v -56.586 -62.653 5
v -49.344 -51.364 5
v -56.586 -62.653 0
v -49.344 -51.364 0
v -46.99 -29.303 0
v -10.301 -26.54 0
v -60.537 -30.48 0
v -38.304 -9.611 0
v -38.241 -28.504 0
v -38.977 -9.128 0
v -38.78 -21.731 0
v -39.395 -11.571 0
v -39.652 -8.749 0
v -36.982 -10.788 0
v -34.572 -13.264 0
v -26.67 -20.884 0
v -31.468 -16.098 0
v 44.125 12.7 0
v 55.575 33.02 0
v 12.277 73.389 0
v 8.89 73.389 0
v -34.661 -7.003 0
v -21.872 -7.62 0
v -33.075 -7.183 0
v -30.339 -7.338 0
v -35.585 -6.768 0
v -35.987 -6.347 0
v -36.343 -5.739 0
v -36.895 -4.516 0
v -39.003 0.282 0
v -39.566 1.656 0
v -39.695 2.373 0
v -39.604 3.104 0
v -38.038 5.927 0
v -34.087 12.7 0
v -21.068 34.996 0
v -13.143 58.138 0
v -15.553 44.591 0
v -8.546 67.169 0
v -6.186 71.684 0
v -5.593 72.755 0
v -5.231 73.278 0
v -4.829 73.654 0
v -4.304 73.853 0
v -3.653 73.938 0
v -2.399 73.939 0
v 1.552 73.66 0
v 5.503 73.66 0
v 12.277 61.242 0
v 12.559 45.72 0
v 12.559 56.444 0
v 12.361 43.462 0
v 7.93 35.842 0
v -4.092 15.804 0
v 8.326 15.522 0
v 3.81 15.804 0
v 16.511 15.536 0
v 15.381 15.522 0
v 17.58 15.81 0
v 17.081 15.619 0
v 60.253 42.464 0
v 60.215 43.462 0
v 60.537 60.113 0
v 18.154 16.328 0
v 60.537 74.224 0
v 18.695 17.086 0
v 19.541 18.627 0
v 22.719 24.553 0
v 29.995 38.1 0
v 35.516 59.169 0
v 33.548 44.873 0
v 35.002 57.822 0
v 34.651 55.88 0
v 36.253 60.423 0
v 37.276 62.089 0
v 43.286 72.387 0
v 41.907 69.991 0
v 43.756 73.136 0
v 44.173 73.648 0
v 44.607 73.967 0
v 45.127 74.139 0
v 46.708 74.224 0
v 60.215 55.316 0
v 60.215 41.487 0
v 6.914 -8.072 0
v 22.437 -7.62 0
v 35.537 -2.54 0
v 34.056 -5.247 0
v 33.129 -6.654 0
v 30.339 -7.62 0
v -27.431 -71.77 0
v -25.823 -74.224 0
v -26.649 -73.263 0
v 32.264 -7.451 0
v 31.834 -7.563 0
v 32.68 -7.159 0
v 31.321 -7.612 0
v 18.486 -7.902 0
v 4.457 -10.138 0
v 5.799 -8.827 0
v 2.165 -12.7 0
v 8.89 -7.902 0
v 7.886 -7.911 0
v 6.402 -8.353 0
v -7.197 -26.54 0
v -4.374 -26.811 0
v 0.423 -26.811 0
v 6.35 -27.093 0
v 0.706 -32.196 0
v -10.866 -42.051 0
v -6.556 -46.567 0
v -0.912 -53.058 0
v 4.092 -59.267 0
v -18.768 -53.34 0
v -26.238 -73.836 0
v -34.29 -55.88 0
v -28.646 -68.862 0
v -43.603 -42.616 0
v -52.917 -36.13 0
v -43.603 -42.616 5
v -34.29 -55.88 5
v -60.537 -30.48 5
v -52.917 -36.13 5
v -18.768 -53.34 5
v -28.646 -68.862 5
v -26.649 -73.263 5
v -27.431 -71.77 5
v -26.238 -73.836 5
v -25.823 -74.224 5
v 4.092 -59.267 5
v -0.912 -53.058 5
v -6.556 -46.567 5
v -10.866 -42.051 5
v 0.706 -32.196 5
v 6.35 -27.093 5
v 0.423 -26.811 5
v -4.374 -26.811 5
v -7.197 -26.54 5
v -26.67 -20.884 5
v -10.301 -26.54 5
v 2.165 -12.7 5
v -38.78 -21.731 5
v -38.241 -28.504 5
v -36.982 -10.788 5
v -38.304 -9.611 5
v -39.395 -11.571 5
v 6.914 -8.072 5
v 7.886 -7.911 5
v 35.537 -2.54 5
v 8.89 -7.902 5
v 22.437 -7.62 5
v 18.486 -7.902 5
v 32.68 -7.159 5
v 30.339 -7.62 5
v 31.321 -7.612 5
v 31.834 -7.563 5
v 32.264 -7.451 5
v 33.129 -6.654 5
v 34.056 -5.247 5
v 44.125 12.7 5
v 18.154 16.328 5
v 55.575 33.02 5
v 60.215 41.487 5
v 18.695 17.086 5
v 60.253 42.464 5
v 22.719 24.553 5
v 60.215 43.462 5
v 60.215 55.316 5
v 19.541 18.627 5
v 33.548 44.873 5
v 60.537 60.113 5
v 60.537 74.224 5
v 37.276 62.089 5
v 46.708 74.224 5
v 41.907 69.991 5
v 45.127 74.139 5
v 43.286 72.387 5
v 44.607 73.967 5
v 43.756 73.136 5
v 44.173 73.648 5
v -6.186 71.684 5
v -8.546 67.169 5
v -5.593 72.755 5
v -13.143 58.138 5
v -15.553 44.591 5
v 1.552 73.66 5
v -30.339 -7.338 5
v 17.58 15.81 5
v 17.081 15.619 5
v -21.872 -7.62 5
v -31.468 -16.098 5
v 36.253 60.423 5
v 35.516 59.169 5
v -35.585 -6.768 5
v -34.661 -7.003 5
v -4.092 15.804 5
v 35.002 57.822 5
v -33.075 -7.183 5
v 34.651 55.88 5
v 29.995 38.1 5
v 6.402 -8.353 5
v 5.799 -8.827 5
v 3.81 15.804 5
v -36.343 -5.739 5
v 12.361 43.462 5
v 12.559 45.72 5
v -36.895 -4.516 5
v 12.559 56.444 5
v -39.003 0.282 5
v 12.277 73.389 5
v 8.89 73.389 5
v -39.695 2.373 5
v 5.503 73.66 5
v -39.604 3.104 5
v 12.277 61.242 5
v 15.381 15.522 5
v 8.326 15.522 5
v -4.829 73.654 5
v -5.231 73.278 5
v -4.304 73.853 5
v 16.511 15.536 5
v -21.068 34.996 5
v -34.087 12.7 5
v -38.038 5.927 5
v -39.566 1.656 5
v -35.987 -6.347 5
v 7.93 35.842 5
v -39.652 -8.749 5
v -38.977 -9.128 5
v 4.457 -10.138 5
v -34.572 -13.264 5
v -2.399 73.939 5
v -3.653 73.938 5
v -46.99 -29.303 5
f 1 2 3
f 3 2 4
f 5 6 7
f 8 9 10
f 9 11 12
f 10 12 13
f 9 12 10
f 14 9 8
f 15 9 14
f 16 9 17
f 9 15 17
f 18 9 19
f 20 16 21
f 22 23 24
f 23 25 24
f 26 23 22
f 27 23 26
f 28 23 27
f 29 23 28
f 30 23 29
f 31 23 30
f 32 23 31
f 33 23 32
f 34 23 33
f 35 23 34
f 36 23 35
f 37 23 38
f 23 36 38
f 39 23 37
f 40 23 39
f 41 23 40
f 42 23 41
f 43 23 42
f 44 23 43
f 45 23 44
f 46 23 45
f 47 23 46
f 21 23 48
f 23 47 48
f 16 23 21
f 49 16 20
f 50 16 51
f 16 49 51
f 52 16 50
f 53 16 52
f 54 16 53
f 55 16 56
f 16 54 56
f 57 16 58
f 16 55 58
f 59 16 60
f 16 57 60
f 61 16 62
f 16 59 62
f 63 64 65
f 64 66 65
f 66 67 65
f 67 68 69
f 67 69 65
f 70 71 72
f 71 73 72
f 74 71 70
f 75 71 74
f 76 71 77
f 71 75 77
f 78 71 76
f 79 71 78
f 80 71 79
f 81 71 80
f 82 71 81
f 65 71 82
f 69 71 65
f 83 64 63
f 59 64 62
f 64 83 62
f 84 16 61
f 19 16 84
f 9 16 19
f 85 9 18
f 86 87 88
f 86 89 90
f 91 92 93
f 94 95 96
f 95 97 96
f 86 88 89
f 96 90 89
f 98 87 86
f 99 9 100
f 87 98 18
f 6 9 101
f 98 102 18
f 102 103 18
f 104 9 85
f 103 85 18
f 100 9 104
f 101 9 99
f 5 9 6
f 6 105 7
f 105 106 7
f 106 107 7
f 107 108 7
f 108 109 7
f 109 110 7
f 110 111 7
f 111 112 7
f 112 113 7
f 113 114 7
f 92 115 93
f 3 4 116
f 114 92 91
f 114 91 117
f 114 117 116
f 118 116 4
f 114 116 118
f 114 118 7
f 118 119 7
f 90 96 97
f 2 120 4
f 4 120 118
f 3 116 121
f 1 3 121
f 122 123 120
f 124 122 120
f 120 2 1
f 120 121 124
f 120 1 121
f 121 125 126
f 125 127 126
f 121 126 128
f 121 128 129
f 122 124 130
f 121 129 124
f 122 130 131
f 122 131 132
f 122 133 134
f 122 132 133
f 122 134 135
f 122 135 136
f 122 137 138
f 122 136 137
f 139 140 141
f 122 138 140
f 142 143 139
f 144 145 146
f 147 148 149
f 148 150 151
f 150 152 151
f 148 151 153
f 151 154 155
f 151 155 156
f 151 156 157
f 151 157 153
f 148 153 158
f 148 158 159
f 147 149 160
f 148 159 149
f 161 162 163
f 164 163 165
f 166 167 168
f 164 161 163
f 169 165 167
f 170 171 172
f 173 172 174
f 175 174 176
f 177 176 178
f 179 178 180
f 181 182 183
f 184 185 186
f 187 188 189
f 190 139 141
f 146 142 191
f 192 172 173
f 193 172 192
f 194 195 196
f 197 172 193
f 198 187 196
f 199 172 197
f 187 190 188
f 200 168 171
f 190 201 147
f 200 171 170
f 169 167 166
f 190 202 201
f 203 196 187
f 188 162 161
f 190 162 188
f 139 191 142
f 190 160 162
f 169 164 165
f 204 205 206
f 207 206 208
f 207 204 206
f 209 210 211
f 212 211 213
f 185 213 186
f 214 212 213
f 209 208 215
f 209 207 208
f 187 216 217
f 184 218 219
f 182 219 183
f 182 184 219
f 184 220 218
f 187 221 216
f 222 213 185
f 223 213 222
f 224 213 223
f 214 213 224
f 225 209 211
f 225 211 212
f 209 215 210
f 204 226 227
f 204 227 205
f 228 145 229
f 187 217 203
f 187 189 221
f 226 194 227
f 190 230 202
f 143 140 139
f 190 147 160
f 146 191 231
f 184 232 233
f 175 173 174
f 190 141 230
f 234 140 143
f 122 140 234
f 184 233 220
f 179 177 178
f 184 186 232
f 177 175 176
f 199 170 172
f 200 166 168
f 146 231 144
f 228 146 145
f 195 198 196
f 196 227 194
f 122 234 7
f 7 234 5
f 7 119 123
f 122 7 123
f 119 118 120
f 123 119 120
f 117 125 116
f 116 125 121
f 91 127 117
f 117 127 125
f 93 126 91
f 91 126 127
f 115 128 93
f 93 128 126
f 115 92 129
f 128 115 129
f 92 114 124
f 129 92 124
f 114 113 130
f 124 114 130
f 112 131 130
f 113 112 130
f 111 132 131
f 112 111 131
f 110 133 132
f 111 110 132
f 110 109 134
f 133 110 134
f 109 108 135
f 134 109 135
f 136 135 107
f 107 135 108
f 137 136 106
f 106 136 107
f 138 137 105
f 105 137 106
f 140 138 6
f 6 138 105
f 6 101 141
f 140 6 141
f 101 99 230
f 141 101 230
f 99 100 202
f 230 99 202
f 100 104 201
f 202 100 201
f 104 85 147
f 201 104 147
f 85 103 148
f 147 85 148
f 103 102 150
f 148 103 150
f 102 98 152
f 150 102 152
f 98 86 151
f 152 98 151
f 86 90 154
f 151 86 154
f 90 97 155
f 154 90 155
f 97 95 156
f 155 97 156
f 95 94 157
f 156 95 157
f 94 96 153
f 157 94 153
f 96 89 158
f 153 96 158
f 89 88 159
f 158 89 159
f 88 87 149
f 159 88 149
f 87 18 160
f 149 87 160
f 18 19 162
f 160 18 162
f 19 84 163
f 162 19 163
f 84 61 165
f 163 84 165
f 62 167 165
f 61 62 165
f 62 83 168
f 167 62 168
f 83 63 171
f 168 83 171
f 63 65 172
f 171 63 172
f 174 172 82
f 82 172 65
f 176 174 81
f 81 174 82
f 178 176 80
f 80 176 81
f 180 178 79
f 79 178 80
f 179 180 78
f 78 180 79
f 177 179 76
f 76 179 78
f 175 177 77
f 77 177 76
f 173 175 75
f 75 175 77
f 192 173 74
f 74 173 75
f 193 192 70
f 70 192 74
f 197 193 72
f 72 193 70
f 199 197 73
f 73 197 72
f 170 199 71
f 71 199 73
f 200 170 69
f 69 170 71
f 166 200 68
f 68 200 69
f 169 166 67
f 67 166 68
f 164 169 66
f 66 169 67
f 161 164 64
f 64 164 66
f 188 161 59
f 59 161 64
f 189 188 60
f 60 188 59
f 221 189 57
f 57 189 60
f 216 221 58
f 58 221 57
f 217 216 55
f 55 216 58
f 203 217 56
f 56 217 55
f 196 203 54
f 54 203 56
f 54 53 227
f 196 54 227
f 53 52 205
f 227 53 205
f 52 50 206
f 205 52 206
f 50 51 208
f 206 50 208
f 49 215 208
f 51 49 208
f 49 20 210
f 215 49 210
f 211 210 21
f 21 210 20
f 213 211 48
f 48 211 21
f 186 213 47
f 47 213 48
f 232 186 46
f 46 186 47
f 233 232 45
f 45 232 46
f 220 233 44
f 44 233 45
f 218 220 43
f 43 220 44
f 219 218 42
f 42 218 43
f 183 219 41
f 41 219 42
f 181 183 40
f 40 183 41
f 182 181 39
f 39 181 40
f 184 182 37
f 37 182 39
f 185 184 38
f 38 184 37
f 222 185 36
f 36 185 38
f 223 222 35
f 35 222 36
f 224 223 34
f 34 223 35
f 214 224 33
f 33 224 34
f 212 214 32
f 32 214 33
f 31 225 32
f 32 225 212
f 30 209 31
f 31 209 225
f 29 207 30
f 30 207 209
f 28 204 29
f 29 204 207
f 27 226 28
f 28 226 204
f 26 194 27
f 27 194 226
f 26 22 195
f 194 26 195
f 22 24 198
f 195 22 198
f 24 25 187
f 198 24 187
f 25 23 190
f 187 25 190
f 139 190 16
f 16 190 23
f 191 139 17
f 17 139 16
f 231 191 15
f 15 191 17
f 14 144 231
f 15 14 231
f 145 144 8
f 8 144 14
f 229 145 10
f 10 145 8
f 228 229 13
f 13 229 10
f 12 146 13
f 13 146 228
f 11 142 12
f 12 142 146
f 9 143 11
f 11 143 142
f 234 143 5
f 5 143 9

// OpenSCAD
// Module names are of the form poly_<inkscape-path-id>().  As a result,
// you can associate a polygon in this OpenSCAD program with the corresponding
// SVG element in the Inkscape document by looking for the XML element with
// the attribute id="inkscape-path-id".

// fudge value is used to ensure that subtracted solids are a tad taller
// in the z dimension than the polygon being subtracted from.  This helps
// keep the resulting .stl file manifold.
fudge = 0.1;

module spurs(h)
{
  scale([25.4/90, -25.4/90, 1]) union()
  {
    linear_extrude(height=h)
      polygon([[13.500000,-56.000000],[29.500000,-55.000000],[54.500000,-55.000000],[58.503750,-55.048750],[60.522969,-55.341719],[62.290000,-56.020000],[64.325156,-57.853594],[66.241250,-60.541250],[69.240000,-66.000000],[80.500000,-87.000000],[106.280000,-135.000000],[118.870000,-159.000000],[122.780000,-198.000000],[124.023594,-204.882813],[125.843750,-209.652500],[128.457031,-214.095937],[132.080000,-220.000000],[148.490000,-248.000000],[153.376719,-256.487656],[155.041895,-259.143652],[156.518750,-260.956250],[158.055137,-262.086816],[159.898906,-262.696719],[165.500000,-263.000000],[214.500000,-263.000000],[214.500000,-213.000000],[213.360000,-196.000000],[213.360000,-154.000000],[213.495000,-150.462500],[213.360000,-147.000000],[196.920000,-117.000000],[156.350000,-45.000000],[125.920000,9.000000],[120.671250,18.592500],[117.385469,23.577187],[115.794199,25.366055],[114.320000,26.400000],[112.797344,26.797500],[110.981250,26.970000],[107.500000,27.000000],[79.500000,27.000000],[65.500000,28.000000],[31.500000,28.000000],[27.943750,28.030000],[24.500000,28.600000],[22.684180,29.597539],[20.548438,31.277812],[15.792500,35.922500],[7.670000,45.000000],[-36.500000,94.040000],[-25.500000,94.040000],[-15.500000,95.000000],[1.500000,95.000000],[22.500000,96.000000],[2.500000,114.080000],[-38.500000,149.000000],[-23.230000,165.000000],[-3.230000,188.000000],[14.500000,210.000000],[-66.500000,189.000000],[-91.500000,263.000000],[-92.970664,261.624141],[-94.426562,259.592500],[-97.197500,254.302500],[-101.500000,244.000000],[-121.500000,198.000000],[-200.500000,222.000000],[-174.840000,182.000000],[-154.500000,151.000000],[-187.500000,128.020000],[-214.500000,108.000000],[-166.500000,103.830000],[-135.500000,101.000000],[-137.410000,77.000000],[-139.590000,41.000000],[-140.500000,31.000000],[-138.108496,32.343340],[-135.722969,34.055469],[-131.038750,38.223750],[-122.500000,47.000000],[-111.500000,57.040000],[-94.500000,74.000000],[-77.500000,27.000000],[-107.500000,26.000000],[-117.196250,25.451250],[-122.812656,24.814531],[-126.090000,23.980000],[-127.513906,22.488438],[-128.773750,20.335000],[-130.730000,16.000000],[-138.200000,-1.000000],[-140.195000,-5.868750],[-140.649688,-8.406719],[-140.330000,-11.000000],[-134.780000,-21.000000],[-120.780000,-45.000000],[-74.650000,-124.000000],[-55.110000,-158.000000],[-46.570000,-206.000000],[-30.280000,-238.000000],[-21.920000,-254.000000],[-19.818750,-257.793750],[-18.535156,-259.646094],[-17.110000,-260.980000],[-15.251406,-261.684844],[-12.943750,-261.983750],[-8.500000,-261.990000],[5.500000,-261.000000],[19.500000,-261.000000],[31.500000,-260.040000],[43.500000,-260.040000],[43.500000,-217.000000],[44.500000,-200.000000],[44.500000,-162.000000],[43.800000,-154.000000],[28.100000,-127.000000],[-14.500000,-56.000000],[13.500000,-56.000000]]);
  }
}

spurs(5);
